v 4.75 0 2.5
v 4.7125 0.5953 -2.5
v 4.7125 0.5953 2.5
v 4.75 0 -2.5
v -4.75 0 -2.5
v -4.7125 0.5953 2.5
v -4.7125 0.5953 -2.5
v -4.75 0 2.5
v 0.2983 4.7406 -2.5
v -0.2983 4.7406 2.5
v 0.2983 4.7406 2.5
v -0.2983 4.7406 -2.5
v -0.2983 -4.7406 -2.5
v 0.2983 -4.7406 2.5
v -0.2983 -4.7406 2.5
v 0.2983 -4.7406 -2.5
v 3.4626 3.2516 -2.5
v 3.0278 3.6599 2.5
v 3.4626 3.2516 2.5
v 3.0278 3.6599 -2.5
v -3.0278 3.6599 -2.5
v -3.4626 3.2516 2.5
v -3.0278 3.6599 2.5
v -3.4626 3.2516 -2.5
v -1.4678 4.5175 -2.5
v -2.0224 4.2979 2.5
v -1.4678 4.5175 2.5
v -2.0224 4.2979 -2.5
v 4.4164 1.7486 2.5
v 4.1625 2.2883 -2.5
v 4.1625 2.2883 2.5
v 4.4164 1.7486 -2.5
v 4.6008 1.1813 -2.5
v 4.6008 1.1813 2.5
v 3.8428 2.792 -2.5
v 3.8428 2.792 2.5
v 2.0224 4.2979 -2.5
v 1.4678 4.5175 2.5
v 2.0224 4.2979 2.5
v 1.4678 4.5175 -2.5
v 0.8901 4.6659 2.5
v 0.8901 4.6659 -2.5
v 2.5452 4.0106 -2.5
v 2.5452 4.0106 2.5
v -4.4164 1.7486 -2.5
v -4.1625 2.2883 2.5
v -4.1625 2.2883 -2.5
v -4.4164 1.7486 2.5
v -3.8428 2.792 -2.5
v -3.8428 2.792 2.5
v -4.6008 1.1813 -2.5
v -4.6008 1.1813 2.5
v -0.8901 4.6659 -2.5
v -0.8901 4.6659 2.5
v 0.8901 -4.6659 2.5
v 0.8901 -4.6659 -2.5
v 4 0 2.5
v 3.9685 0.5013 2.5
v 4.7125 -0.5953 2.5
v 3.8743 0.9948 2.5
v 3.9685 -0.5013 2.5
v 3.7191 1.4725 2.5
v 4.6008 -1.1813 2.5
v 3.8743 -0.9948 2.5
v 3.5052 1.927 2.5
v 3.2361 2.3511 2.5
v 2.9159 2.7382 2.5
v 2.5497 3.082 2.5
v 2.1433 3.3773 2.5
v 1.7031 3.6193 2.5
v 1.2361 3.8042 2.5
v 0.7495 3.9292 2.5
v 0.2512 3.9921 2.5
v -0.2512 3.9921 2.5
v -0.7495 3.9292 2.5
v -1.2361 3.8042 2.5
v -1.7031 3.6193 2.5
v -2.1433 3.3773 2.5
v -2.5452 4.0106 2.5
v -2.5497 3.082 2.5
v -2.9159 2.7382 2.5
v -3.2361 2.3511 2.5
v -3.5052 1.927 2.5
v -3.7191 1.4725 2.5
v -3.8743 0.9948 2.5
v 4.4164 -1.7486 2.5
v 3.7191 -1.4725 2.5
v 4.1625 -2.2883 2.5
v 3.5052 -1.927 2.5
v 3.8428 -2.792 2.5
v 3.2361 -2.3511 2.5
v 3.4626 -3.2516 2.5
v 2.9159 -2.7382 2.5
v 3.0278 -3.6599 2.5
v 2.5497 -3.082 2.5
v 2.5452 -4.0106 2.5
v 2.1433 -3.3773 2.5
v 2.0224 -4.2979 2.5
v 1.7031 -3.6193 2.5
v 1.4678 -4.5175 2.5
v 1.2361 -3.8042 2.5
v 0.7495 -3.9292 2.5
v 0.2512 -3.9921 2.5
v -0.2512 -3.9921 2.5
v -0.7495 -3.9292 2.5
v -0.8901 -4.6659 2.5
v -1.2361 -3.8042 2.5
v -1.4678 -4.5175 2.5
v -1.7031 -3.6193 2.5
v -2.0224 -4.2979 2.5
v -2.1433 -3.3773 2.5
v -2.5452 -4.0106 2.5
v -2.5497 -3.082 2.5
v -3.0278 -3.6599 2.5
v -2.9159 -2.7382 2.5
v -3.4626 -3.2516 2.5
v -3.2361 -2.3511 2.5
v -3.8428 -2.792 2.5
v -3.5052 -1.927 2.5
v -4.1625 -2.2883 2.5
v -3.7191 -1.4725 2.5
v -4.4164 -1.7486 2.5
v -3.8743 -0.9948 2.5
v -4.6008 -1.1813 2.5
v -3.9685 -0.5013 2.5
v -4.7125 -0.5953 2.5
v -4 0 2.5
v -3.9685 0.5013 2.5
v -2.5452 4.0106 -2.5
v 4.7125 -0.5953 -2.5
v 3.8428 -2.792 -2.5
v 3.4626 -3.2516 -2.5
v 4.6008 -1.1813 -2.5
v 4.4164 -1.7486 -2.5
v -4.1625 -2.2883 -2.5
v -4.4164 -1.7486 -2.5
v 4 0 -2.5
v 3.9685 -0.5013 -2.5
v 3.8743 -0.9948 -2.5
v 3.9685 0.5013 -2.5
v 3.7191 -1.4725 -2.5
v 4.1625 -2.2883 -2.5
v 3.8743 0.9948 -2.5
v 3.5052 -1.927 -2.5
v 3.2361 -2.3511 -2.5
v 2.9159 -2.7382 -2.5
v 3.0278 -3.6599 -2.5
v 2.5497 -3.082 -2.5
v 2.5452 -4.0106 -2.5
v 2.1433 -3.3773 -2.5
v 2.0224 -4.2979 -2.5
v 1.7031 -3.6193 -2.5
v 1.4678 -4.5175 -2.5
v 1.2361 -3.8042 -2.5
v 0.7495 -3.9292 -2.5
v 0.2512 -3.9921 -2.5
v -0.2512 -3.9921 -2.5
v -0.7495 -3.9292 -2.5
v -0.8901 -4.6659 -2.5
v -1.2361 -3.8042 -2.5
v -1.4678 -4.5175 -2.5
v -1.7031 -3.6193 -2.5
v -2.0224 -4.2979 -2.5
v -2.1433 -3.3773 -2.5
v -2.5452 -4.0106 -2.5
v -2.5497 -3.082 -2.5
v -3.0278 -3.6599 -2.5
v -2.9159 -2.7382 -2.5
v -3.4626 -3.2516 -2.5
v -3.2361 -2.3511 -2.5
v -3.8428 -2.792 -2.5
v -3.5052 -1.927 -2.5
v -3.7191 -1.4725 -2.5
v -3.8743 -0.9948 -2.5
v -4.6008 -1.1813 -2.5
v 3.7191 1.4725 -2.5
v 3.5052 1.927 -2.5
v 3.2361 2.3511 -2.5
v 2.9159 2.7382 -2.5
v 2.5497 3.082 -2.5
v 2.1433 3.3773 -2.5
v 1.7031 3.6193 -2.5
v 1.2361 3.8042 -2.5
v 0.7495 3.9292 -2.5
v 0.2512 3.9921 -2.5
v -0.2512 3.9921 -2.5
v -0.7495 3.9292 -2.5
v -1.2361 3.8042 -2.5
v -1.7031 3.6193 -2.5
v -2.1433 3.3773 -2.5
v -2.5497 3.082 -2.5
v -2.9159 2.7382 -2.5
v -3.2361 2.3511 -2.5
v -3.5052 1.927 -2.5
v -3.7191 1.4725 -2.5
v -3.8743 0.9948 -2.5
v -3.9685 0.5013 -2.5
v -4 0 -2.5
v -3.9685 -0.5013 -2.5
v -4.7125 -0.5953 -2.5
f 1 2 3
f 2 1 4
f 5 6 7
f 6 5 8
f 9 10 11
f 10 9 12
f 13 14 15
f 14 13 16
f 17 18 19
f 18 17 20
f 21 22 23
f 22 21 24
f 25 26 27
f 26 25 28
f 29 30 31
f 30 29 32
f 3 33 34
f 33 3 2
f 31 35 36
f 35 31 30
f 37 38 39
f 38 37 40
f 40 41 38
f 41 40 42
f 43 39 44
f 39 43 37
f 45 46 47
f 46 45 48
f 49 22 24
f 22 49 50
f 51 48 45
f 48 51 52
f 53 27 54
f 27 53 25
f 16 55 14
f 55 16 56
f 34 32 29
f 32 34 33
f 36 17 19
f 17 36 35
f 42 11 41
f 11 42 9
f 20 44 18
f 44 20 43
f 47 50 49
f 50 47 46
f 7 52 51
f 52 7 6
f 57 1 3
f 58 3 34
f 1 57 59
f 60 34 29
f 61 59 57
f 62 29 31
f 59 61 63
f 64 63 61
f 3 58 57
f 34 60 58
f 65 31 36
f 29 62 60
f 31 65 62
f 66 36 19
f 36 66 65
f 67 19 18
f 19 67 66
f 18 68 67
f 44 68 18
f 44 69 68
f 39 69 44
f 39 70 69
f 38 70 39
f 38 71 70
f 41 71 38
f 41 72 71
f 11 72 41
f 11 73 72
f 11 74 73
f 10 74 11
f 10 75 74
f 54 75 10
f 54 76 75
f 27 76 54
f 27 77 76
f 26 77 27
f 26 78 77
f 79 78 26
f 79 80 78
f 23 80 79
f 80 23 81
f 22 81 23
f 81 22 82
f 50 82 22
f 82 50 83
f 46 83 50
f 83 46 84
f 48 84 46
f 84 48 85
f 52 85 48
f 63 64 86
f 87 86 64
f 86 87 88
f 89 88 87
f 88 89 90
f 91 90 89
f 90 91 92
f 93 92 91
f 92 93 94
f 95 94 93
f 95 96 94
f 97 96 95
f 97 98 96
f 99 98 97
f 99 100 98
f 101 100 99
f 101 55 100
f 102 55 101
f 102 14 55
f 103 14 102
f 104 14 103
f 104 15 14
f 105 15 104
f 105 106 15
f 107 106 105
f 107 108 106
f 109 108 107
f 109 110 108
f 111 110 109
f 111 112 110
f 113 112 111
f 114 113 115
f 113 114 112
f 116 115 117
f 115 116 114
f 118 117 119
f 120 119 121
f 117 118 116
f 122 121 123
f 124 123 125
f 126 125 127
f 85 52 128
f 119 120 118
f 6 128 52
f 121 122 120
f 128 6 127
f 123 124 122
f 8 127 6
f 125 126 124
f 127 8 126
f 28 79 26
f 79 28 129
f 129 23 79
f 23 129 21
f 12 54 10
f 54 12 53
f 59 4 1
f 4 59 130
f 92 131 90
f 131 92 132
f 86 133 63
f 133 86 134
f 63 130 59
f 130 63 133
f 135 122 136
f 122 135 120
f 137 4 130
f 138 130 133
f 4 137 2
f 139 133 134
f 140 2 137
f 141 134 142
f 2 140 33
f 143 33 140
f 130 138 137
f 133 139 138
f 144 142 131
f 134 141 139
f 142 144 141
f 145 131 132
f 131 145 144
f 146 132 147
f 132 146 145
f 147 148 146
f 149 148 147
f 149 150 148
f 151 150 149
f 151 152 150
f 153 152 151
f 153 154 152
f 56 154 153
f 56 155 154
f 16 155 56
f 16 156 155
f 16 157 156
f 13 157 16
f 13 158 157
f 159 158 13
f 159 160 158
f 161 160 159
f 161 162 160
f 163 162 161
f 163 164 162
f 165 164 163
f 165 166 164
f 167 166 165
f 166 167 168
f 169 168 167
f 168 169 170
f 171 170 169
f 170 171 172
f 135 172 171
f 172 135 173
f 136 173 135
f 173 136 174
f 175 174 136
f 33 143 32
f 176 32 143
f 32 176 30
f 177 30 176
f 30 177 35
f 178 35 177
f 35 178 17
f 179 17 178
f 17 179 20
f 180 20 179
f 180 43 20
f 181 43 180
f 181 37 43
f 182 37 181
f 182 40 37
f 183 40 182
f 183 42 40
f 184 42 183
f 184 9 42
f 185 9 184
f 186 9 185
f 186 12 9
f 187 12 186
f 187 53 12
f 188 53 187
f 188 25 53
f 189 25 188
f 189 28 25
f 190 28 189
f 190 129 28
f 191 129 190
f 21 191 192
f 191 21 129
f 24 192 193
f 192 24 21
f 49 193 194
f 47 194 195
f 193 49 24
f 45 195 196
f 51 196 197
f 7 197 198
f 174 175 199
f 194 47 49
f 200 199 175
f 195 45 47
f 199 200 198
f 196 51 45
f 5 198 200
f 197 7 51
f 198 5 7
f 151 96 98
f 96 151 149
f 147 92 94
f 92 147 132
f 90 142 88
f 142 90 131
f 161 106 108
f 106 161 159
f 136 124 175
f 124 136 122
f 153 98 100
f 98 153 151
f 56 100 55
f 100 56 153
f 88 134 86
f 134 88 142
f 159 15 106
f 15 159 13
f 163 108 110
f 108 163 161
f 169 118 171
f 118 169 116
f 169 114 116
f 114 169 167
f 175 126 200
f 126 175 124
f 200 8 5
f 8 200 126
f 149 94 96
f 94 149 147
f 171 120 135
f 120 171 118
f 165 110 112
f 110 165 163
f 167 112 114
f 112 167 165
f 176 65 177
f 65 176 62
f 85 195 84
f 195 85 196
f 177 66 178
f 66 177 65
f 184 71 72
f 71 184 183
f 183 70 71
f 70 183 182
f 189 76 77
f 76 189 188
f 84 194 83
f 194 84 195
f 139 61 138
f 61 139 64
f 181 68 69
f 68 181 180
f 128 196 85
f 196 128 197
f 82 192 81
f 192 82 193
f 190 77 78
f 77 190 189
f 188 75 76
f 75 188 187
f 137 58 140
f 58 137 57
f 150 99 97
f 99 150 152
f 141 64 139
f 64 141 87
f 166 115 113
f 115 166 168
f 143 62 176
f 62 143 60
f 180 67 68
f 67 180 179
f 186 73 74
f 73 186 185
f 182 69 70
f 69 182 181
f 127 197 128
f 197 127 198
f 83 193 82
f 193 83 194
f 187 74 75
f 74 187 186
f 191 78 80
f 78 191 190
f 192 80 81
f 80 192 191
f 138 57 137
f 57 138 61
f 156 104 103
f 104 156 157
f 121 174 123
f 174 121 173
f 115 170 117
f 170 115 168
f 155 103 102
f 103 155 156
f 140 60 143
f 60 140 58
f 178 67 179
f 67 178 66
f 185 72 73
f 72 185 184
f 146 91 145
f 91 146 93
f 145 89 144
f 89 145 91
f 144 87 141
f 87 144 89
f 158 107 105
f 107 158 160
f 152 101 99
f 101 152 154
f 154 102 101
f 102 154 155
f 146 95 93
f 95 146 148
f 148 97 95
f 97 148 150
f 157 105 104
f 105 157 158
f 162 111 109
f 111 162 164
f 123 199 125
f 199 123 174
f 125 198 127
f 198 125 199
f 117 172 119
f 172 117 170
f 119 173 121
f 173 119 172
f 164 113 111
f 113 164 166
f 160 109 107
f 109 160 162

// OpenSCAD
$fn = 50;


difference() {
	union() {
		translate(v = [0, 0, -2.5000000000]) {
			cylinder(h = 5, r = 4.7500000000);
		}
	}
	union() {
		translate(v = [0, 0, -100.0000000000]) {
			cylinder(h = 200, r = 4.0000000000);
		}
	}
}
